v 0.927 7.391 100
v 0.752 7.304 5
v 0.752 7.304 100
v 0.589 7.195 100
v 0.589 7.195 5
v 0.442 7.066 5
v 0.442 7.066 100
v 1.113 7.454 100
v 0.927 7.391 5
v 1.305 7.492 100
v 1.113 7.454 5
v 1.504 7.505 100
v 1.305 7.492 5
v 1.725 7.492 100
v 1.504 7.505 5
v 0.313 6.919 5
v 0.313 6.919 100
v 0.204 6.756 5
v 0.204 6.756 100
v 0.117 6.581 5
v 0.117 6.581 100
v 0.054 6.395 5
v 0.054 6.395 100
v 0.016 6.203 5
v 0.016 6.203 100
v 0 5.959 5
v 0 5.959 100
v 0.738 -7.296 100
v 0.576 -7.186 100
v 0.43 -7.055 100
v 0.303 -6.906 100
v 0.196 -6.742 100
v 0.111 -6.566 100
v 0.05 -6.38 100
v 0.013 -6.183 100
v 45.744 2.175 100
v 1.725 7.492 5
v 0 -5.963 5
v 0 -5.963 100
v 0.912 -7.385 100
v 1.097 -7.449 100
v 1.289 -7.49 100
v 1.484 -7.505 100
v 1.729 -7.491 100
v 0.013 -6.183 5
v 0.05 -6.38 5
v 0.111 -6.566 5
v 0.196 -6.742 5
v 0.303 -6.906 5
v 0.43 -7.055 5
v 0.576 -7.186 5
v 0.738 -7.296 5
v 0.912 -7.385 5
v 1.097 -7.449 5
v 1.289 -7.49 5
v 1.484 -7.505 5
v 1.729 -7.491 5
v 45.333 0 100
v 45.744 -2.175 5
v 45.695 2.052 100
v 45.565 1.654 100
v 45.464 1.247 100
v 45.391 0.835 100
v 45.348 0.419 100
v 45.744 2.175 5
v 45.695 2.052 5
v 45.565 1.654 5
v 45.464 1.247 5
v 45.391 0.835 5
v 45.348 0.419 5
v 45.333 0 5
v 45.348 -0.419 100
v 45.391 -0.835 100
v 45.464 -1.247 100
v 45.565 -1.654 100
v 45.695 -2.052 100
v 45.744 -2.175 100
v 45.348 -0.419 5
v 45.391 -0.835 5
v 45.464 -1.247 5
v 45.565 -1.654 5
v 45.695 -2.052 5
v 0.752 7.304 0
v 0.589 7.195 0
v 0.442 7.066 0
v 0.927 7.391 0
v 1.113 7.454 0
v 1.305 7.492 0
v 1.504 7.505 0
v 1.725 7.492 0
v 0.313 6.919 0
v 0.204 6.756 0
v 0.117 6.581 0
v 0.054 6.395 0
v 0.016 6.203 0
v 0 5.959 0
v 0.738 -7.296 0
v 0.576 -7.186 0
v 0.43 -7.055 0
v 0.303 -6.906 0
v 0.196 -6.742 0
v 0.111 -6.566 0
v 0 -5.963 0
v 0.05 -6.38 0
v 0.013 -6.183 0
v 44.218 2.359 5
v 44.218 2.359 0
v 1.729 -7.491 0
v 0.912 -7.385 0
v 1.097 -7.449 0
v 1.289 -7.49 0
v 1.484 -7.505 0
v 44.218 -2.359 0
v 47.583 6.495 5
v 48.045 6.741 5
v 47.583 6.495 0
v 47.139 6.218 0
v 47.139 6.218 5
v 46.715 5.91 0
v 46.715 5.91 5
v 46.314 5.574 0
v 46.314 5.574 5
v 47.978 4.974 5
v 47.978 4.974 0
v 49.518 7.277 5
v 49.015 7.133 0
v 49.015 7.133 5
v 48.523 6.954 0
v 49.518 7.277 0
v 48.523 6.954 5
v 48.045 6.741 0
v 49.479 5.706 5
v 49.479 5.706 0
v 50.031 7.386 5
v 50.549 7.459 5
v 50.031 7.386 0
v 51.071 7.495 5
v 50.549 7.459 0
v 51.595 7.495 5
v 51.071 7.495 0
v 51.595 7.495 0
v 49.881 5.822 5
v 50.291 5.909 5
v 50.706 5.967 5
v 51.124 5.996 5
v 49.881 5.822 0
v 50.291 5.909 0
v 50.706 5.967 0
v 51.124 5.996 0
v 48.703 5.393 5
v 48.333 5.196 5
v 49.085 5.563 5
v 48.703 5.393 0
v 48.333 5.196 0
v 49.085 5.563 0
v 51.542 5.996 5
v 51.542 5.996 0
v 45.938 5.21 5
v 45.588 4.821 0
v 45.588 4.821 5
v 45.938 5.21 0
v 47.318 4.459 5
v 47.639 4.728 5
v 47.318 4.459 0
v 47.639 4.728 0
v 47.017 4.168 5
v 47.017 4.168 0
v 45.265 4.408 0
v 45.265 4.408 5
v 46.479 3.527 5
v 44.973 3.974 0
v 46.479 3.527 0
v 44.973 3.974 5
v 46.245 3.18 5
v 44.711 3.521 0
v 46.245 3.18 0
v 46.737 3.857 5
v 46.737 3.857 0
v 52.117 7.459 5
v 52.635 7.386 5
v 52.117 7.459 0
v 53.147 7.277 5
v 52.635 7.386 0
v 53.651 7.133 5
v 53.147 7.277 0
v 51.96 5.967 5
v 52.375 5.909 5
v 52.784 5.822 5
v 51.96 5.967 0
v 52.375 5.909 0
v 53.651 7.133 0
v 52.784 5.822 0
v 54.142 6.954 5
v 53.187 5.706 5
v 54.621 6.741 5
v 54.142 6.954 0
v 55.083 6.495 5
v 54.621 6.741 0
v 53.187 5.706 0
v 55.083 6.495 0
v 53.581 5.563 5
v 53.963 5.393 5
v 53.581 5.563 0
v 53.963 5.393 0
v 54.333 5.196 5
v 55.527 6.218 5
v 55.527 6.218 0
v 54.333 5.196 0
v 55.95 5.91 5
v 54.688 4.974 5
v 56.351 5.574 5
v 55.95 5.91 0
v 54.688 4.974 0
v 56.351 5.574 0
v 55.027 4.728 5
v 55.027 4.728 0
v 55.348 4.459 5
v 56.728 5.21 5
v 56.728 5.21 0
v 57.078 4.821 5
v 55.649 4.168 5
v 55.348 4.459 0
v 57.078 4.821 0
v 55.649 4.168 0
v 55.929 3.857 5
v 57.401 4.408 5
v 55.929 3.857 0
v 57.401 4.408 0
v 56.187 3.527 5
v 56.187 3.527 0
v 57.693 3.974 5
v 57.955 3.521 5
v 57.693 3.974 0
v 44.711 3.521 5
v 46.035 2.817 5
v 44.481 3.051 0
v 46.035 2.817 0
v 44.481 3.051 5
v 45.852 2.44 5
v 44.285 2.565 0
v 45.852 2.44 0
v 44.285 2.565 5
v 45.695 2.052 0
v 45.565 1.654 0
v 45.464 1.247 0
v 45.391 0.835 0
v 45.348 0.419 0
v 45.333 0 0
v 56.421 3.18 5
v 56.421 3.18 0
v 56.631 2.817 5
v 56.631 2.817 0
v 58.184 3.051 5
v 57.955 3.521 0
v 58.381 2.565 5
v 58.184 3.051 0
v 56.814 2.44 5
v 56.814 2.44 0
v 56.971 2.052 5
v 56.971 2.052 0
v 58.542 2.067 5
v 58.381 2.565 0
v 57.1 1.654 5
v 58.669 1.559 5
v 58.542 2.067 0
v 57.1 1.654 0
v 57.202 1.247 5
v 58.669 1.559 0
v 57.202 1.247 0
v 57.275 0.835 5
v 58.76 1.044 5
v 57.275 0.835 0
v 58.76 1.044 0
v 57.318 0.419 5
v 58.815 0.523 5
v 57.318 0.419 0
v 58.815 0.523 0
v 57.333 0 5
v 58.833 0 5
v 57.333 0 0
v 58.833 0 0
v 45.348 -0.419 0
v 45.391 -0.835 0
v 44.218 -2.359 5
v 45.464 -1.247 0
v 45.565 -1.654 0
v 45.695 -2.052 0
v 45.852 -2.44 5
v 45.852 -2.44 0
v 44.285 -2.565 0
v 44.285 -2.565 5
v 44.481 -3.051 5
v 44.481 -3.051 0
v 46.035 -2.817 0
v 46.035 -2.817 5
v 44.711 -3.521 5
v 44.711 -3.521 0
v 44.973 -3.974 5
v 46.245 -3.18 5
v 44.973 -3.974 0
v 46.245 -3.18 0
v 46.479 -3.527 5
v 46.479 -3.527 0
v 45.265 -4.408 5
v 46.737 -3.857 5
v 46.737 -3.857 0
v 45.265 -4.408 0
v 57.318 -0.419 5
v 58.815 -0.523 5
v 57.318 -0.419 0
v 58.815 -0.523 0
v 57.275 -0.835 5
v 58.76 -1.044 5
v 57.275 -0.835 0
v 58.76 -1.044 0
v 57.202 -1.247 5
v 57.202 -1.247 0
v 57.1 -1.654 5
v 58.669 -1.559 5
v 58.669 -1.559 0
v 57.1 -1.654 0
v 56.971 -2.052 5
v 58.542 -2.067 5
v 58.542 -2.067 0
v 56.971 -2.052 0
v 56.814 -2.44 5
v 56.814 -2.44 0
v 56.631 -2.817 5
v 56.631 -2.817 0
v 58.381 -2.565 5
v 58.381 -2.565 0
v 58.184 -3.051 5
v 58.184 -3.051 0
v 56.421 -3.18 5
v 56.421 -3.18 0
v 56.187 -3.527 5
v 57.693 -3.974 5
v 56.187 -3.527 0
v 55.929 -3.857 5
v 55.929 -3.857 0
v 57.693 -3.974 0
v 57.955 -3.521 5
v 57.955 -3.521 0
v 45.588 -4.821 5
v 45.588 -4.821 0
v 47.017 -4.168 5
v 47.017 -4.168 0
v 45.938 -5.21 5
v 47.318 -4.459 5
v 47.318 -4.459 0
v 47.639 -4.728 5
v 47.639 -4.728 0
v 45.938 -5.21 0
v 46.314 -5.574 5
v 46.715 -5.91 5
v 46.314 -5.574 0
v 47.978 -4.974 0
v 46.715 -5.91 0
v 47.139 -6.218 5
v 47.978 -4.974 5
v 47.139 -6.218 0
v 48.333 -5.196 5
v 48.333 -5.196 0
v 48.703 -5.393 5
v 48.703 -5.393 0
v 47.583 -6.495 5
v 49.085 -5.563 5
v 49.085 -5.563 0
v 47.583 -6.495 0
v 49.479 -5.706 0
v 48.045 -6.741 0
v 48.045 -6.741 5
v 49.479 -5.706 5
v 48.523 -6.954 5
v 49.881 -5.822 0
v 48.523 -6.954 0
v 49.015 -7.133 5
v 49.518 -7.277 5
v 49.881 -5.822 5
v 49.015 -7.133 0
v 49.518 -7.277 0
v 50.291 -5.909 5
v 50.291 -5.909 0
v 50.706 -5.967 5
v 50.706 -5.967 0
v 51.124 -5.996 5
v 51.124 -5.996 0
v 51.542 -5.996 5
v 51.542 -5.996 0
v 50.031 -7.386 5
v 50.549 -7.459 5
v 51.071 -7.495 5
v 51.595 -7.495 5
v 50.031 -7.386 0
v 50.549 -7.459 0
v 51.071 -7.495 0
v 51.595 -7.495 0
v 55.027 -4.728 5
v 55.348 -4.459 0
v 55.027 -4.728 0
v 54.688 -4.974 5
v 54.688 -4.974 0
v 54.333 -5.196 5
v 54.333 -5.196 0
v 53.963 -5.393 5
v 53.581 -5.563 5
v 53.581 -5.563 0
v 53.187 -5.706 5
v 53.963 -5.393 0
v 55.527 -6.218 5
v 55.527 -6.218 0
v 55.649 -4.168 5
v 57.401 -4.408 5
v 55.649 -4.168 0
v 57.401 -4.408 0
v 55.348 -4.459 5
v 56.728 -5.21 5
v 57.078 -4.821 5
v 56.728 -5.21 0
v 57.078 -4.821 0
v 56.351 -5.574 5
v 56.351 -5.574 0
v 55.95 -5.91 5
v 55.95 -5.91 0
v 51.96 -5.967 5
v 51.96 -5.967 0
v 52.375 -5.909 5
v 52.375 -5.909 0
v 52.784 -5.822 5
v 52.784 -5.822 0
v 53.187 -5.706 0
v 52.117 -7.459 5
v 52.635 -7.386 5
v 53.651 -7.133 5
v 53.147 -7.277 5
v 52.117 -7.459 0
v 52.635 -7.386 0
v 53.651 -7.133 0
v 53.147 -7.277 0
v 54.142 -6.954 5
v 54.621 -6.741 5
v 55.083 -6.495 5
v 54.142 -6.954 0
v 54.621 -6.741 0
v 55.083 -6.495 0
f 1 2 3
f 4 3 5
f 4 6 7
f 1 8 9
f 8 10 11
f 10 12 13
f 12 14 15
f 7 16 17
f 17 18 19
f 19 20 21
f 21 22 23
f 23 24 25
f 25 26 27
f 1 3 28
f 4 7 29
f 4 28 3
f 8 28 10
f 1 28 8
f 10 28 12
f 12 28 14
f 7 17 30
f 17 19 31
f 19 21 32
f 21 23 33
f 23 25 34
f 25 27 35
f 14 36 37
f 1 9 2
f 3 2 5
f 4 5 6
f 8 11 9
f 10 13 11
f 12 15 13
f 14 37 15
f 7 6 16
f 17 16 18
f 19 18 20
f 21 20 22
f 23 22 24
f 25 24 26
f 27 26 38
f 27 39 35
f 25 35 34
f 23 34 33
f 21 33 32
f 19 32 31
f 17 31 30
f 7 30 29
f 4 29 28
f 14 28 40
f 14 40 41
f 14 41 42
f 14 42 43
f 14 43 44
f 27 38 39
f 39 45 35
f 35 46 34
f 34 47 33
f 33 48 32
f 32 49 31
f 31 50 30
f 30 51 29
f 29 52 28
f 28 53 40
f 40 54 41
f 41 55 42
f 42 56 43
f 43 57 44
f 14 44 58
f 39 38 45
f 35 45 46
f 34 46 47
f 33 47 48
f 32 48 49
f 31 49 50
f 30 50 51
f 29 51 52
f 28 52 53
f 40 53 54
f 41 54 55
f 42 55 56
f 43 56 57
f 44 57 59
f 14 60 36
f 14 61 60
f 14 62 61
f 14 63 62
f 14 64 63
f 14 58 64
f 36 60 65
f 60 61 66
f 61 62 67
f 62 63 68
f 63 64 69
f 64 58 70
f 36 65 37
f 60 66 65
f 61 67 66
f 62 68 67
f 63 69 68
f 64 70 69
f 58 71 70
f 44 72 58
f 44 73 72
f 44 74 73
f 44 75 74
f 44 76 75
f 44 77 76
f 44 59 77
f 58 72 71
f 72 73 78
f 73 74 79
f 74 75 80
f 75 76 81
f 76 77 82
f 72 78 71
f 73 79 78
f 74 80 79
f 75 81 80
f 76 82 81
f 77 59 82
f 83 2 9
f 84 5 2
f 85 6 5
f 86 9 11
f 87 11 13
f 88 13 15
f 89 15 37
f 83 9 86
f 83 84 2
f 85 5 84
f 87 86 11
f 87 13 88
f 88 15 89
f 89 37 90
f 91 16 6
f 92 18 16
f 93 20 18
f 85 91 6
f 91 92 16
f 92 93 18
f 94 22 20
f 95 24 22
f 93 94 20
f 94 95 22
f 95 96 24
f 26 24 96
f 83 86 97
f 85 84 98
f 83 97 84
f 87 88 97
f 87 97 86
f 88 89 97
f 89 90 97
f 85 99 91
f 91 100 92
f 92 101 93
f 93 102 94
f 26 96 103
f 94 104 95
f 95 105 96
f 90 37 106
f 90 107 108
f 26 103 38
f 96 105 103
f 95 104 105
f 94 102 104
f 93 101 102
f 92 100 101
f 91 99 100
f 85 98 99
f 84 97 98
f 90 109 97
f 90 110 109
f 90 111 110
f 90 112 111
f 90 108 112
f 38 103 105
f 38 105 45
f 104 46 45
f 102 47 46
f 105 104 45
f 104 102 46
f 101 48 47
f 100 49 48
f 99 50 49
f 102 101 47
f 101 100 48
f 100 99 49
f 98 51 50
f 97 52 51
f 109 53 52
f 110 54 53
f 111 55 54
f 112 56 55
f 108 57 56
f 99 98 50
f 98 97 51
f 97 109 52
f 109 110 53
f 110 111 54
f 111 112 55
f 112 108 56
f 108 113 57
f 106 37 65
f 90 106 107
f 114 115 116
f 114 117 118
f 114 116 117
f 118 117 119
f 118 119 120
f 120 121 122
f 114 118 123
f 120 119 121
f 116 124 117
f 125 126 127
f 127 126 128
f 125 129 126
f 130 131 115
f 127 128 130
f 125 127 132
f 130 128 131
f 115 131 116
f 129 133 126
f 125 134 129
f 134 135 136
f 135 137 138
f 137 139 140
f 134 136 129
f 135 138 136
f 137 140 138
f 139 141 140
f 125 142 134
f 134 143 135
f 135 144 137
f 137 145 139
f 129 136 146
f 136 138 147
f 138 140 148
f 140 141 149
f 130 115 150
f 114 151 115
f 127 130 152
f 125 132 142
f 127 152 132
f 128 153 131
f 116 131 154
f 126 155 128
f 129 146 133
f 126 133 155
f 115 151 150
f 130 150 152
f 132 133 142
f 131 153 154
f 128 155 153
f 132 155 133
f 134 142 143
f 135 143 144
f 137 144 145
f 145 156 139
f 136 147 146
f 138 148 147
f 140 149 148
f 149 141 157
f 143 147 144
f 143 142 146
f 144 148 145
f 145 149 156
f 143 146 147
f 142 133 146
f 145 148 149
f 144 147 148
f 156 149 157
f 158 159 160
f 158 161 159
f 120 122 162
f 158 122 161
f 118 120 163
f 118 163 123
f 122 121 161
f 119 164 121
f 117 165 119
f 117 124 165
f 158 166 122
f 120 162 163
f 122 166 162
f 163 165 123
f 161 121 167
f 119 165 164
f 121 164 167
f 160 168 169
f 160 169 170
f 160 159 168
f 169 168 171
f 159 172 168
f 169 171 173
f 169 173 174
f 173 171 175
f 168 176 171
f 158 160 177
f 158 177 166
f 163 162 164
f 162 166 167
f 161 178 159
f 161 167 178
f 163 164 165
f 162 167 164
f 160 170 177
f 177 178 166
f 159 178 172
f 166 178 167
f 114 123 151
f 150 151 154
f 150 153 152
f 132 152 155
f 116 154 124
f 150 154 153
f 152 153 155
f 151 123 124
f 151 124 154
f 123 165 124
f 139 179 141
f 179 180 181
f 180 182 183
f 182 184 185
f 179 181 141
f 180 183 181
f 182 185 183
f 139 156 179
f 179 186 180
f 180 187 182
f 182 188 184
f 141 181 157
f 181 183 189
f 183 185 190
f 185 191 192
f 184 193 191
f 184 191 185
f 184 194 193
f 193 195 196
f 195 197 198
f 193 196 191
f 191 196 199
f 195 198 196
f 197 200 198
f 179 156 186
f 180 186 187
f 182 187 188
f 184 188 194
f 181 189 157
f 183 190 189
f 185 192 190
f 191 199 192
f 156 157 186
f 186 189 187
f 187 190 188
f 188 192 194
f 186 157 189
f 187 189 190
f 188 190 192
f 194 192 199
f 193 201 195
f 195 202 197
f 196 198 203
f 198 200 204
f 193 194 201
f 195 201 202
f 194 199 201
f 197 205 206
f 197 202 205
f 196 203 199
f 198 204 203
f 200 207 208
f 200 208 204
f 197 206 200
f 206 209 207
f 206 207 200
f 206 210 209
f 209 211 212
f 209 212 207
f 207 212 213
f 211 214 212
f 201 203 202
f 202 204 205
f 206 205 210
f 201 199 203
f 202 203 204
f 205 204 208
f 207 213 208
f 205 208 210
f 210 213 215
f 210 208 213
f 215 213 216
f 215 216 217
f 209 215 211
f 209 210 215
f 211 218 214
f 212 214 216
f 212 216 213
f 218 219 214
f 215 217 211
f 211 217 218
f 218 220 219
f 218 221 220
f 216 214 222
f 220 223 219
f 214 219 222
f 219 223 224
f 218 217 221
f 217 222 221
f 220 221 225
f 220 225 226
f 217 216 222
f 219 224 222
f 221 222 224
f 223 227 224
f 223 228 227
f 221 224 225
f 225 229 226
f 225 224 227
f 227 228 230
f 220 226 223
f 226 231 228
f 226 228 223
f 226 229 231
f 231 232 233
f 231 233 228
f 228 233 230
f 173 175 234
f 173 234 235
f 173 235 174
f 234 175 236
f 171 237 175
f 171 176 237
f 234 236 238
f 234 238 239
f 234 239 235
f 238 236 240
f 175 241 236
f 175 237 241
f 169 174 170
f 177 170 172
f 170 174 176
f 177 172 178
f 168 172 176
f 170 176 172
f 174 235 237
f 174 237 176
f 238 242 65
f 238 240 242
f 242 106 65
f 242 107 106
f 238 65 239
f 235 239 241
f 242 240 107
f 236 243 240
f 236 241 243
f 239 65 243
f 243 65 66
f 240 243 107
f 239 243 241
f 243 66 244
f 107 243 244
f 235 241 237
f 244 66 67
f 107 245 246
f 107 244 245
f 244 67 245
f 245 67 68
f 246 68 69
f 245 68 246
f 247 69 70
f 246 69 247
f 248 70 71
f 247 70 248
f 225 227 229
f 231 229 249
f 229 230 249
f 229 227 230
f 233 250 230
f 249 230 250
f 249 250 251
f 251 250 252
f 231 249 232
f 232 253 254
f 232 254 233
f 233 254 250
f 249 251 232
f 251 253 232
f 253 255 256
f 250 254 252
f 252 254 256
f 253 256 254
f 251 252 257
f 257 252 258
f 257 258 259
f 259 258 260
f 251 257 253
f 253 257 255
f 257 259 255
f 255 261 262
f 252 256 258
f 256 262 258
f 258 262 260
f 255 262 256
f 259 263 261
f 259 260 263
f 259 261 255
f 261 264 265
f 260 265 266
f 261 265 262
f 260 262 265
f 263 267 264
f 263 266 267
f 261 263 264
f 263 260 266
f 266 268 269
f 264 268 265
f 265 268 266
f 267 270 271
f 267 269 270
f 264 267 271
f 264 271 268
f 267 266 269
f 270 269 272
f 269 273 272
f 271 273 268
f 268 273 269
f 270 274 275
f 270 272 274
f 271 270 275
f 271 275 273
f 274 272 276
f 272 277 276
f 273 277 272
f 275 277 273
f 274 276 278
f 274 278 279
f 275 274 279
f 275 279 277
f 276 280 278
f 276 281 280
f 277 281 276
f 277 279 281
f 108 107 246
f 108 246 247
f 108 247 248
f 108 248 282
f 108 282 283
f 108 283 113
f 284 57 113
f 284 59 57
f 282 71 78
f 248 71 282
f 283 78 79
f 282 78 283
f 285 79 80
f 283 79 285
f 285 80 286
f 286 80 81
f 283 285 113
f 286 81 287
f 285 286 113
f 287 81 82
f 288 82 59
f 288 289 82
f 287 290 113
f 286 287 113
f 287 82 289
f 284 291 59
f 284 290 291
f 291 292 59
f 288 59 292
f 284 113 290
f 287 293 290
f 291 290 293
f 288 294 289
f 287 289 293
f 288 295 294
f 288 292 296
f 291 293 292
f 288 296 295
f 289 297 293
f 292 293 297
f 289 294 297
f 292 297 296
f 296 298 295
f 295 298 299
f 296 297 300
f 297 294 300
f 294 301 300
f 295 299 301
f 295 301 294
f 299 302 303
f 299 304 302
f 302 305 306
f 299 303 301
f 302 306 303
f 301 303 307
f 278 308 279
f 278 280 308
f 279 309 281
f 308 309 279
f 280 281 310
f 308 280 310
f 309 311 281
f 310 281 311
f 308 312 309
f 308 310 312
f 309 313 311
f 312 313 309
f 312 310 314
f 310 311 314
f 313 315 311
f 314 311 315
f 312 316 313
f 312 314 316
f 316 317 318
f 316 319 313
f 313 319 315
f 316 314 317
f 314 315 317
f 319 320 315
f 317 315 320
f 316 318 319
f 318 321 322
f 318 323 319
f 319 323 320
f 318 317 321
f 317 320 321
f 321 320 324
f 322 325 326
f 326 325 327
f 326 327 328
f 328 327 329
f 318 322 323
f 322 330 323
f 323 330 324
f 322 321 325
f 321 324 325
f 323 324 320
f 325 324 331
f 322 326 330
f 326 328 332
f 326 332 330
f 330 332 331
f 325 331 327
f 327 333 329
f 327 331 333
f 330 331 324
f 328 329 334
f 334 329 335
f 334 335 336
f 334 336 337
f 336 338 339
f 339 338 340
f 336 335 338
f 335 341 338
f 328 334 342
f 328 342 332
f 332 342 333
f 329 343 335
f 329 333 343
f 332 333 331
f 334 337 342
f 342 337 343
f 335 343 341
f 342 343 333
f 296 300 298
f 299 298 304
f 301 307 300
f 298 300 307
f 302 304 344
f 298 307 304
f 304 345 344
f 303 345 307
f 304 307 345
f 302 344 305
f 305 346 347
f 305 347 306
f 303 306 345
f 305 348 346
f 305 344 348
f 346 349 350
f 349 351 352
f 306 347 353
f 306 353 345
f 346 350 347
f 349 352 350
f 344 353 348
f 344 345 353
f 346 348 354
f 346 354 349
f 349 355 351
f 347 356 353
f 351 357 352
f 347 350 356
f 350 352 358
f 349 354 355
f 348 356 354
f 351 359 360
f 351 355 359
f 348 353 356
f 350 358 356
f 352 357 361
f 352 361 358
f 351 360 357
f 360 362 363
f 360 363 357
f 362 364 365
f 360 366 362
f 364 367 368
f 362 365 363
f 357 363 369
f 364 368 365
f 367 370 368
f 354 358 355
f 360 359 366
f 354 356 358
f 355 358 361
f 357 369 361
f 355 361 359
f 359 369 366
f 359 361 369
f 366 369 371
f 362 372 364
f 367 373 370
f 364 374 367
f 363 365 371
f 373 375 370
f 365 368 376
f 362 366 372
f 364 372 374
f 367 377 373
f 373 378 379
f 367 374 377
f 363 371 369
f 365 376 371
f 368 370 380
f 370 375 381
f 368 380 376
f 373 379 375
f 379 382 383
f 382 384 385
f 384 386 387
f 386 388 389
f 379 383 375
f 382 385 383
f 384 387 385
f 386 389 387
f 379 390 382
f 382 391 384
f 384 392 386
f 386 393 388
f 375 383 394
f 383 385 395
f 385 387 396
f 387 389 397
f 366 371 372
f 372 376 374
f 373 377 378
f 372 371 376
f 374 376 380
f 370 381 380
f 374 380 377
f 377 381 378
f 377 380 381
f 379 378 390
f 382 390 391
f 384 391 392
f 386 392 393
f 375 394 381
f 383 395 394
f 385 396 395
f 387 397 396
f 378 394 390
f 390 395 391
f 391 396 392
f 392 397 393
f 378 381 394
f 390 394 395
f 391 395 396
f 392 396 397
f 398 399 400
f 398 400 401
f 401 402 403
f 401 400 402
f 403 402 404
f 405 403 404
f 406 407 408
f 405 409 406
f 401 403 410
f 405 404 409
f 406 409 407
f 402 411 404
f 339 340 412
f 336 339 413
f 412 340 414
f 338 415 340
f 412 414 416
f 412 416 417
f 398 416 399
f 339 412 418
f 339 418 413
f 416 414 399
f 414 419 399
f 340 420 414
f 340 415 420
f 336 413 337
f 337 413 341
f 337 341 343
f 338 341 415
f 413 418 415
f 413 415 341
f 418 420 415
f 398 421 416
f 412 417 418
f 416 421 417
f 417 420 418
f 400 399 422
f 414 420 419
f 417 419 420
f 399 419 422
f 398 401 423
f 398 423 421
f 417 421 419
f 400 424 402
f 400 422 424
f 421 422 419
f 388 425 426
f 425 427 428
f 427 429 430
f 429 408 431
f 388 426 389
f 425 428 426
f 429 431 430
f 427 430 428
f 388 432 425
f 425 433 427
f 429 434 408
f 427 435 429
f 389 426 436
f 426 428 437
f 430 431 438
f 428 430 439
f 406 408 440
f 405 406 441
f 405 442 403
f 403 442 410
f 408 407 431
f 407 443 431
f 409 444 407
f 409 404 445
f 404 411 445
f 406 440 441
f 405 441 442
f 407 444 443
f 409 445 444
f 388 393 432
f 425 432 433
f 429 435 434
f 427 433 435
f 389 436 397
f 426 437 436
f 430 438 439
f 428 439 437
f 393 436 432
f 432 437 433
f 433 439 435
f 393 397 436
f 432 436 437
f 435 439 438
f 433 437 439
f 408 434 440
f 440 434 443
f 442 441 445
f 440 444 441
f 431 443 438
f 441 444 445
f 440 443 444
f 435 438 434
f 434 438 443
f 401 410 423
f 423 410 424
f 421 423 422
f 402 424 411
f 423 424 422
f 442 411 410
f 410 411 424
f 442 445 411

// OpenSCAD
// Cat gap wedge — holds the laundry/litter room door open a cat's width.
//
// This file is the WEDGE BODY ONLY. The hook is the ring, and it is part of
// this file; nothing else is needed to hang it.
//
// HOW IT INSTALLS. The ring drops over the TOP HINGE PIN, on the inside of the
// jamb, and the wedge hangs down from it into the gap between the door's hinge
// stile and the jamb. The door closes onto the taper and cannot go past, which
// leaves the latch edge cracked open for the cats. Ziad, 2026-09-11.
//
// SO THE RING END IS THE BACK, as you install it: the ring is at the hinge and
// the far face points out into the opening. It does not bear on anything; it
// is simply the far end.
//
// THE HINGE, measured by Ziad 2026-09-12. The barrel is about 12 mm across and
// stands outside the door face; the stack is 90 mm tall. On top of it sits a
// two-sided hinge-pin door stop 7 mm tall, then a 1 mm rubber grommet and a
// 1 mm pin head. The ring loops those last 2 mm and rests on the door stop, so
// its top 3 mm have nothing but air inside. Below the ring the channel runs
// down beside the door stop and then the barrel.
//
// THE FORM. A truncated wedge standing on end: 100 mm tall, a 15.4 mm flat
// face at the far end tapering to a 3 mm nose ON the pin, and a 15 mm bored
// ring around the pin for the top 5 mm.
//
//   depth        51.333 mm   far face to the pin
//   taper angle  13.77 deg   2 * atan(6.2 / 51.333)
//   overall      58.833 mm   depth + knob_r
//
// WHAT SETS THE GAP. The door binds where the wedge is widest along the door's
// edge — the door's inside corner, about 43 mm from the pin (a 12 mm barrel
// outside the face, a 35 mm door) — and only by however much the wedge is
// wider there than the slot already is with the door closed:
//
//   crack  ~  W * (width at the corner - closed slot) / 43
//
// with W the door's width. The slot has not been measured; it is FITTED. The
// first coupon, an 11 mm face on a point nose, stopped a 30 in door at just
// over 3 in, which puts the slot at about 4.8 mm. On that fit 1 mm more on
// the far face is about 0.6 in more at the latch, and 15.4 predicts 6 in.
// Treat the prediction as a first cut and the 0.6 in/mm as the correction,
// and if it lands far off, measure the slot instead of fitting it again.
//
// THE FIRST TWO GUESSES WERE WRONG THE SAME WAY. An 18 mm face on a 5 mm nose
// jammed on the nose. The fix, "call it 11 mm" on a point nose so that t/r
// was constant along the facets, assumed the closed slot was zero and that
// the door touched the wedge all the way in to the pin. Neither is true: the
// slot is ~5 mm and the door's edge starts ~8 mm out from the pin, so the
// point nose never touched anything, the far corner did all the work, and a
// predicted 6.39 in came out as 3.
//
// THE NOSE IS 3 mm FOR THE RING JOINT, not for the door. In TPU the point
// nose met the ring across 1.8 mm, which is a live hinge. 3 mm at the pin is
// 4.8 mm where the wedge meets the ring's outside, and at 8 mm out — the
// door's face corner — the wedge is 4.9 mm against a slot of 4.8 plus whatever
// the door has opened, so it clears there and binds at the far corner as
// intended. Do not raise it past 4 without measuring the slot; that is the
// 18 mm mistake again.
//
// THE BORE IS THE MOUNT, and it is vertical in use. Modelled ring-up, the bore
// runs down the part's height, so hanging on the door it is a vertical hole
// that drops straight over the pin head from above and rests on the door stop.
//
// THE RING EXISTS ONLY IN THE TOP 5 mm; BELOW IT, THE BORE CARRIES ON. Above
// z = 95 the 15 mm knob is added and bored 12. Below, the knob is simply gone
// — not subtracted, absent — and the 12 mm bore continues down as a cut, so
// the channel wall is the very same cylinder as the inside of the ring and
// runs flush with it. Ziad: "delete the ring but leave the overlap."
//
//   channel floor  45.333 mm from the far face
//   channel mouth  45.741 mm, where the arc meets each facet
//   mouth tips     2.175 mm off the axis, so a 4.35 mm nose at the mouth
//
// The channel is drawn at the barrel's 12 mm. The coupon went on, so it
// clears, but it is not a measured clearance.
//
// EVERY VERTICAL EDGE IS ROUNDED at edge_r = 1.5 mm. With a 3 mm nose the
// opening rounds its two corners into nearly a full round and pulls nothing
// back. The point nose it replaced lost 14 mm to the same opening and was
// SEVERED from the ring, which genus did not catch: a wedge is genus 0 and a
// ring is genus 1, so the sum read 1 either way. Count connected components
// in the mesh after any change to the nose; that is the check that caught it.
//
// THE BORE IS DRAWN NOMINAL. This machine loses 0.55-0.65 mm on a small bore
// by measurement, so put that back with bore_comp before trusting the fit on
// a real pin.
//
// ⚠️ THE RING WALL IS 1.5 mm, which is 3.57 passes of a 0.42 line and off the
// wall ladder. 1.26 (3 passes) and 1.68 (4) are the neighbours: knob_d 15.36
// holds the 12 mm bore, bore_d 11.64 holds the 15 mm knob. Ziad's call, so it
// builds 12-in-15 as asked.
//
// ORIENTATION. Modelled ring-up, which is how it hangs. It is BUILT ring-down
// — flip = true rotates it 180 about X before output — and that is how to
// print it: the channel is a vertical slot, the bore a vertical hole, and the
// ring's flat underside sits on the plate instead of bridging open air at
// z = 95. Going up from the ring the section only loses material, which is a
// ledge, not an overhang. It is a 100 mm tower on a 58.8 x 15.4 footprint, so
// run a brim.

/* [Output] */

// "coupon" is the bottom coupon_h of the printed orientation — the ring and
// the start of the channel — for checking the fit, the bore, and the door
// angle without printing 100 mm. Build it with --name cat-gap-wedge-coupon.
show = "part";   // [part, coupon]
// Print the part ring-down. The ring is modelled at the top because that is
// where it belongs on the door; it is printed at the bottom because that is
// the only way the ring's underside is not a bridge.
flip = true;
// Height of the coupon, measured from the bottom of the printed orientation.
coupon_h = 20.0;

$fa = 4;   // organic faceting per the 0.4-nozzle rule; no global high $fn
$fs = 0.4;
eps = 0.01;

/* [Wedge] */

// Height standing on end (mm). The dimension along the door's edge.
wedge_height = 100.0;
// Distance from the far face to the ring's axis, which is the pin (mm).
// 51.3329 is the original 31.3329 plus the 20 Ziad asked for on 2026-09-11.
wedge_depth = 51.3329;
// Thickness of the far face, the end away from the hinge (mm). THIS is the
// lever for the door angle: about 0.6 in at the latch per mm, see WHAT SETS
// THE GAP. 11 gave 3 in; 15.4 is the 6 in prediction.
back_thick = 15.4;
// Thickness of the nose, on the pin (mm). Set for the ring joint, bounded by
// the closed slot — see THE NOSE IS 3 mm. 0 makes it a point.
front_thick = 3.0;
// Radius on every vertical edge (mm). Rounds convex and concave corners alike.
// 0 leaves them all sharp.
edge_r = 1.5;

/* [Door — measured and fitted] */

// Width of the door (in). Only used for the predicted crack.
door_width_in = 30;
// Distance from the pin to the door's inside corner, where it binds (mm).
// 12 mm barrel outside the face plus a 1-3/8 in door. Estimated, not measured.
door_corner = 43.0;
// Gap between the door's hinge edge and the jamb with the door closed (mm).
// FITTED from the 3 in coupon result, not measured.
slot_closed = 4.8;

/* [Knob] */

// Diameter of the cylinder running down the front edge (mm).
knob_d = 15.0;
// Position of the knob's axis, measured forward from the nose (mm). 0 centres
// it on the nose.
knob_offset = 0.0;
// Diameter of the bore down the knob's axis (mm). 0 leaves it solid.
bore_d = 12.0;
// Added to bore_d to cover this machine's bore shrinkage (mm). Left at 0 the
// hole is drawn at its nominal size.
bore_comp = 0.0;
// Height of cylinder kept at the very top as a ring (mm). The rest of it is
// subtracted from the wedge and becomes the channel.
ring_h = 5.0;

/* [Derived — do not edit] */

half_back = back_thick / 2;
half_front = front_thick / 2;
knob_r = knob_d / 2;
bore_r = (bore_d + bore_comp) / 2;
knob_x = wedge_depth + knob_offset;
facet_len = sqrt(wedge_depth * wedge_depth + pow(half_back - half_front, 2));
taper_angle = 2 * atan((half_back - half_front) / wedge_depth);
// Half-width of the wedge at s mm from the pin, towards the far face.
function half_width(s) = half_front + (half_back - half_front) * s / wedge_depth;
// Where the bore's arc meets each facet, as a distance from the pin: solve
// s^2 + half_width(s)^2 = bore_r^2 for s.
slope = (half_back - half_front) / wedge_depth;
mouth_s = (-2 * half_front * slope
           + sqrt(pow(2 * half_front * slope, 2)
                  - 4 * (1 + slope * slope) * (half_front * half_front - bore_r * bore_r)))
          / (2 * (1 + slope * slope));
// The door stops where the wedge outgrows the slot by the most per mm of
// reach. That is the far corner unless the nose is fatter than the slot.
stop_rad = max([for (s = [8 : 1 : door_corner]) (2 * half_width(s) - slot_closed) / s]);

// Round every corner of a 2D profile by rr without moving the flats: open by
// rr (erode, dilate — rounds the convex corners), then close by rr (dilate,
// erode — rounds the concave ones). The two dilations merge into one, which is
// why the middle offset is 2 * rr. Arcs already larger than rr come through
// untouched, so the channel and the bore are unaffected.
module round_all(rr) {
  if (rr > 0) offset(r = -rr) offset(r = 2 * rr) offset(r = -rr) children();
  else children();
}

module wedge_trapezoid() {
  polygon([
    [0, -half_back],                // far face, right side
    [wedge_depth, -half_front],     // the nose, on the pin
    [wedge_depth, half_front],
    [0, half_back],                 // far face, left side
  ]);
}

module wedge_rounded() {
  round_all(edge_r) wedge_trapezoid();
}

// Below the ring: the wedge with the channel scooped out of its nose. The cut
// is the BORE, not the knob — below the top course the ring itself is simply
// not there, and what continues down is the hole through it. So the channel
// wall is the same cylinder as the inside of the ring and runs flush with it,
// rather than standing knob_r - bore_r = 1.5 mm proud of it.
module lower_profile() {
  difference() {
    wedge_rounded();
    translate([knob_x, 0]) circle(r = bore_r);
  }
}

// The ring course. Rounded BEFORE the bore is cut, because the ring wall is
// only 1.5 mm and an erode of edge_r would delete it outright.
module upper_profile() {
  difference() {
    union() {
      wedge_rounded();
      translate([knob_x, 0]) circle(r = knob_r);
    }
    translate([knob_x, 0]) circle(r = bore_r);
  }
}

// Two constant sections stacked, rather than one extrude cut by a cylinder.
// Each course is a plain 2D profile, so the rounding is a 2D offset and the
// knob's r = 7.5 surface is never both added and subtracted over the same z.
module cat_gap_wedge() {
  linear_extrude(height = wedge_height - ring_h, convexity = 6)
    lower_profile();
  translate([0, 0, wedge_height - ring_h])
    linear_extrude(height = ring_h, convexity = 6)
      upper_profile();
}

// Printed orientation. The flip is a rotate, not a mirror — the part is
// symmetric about y = 0, so nothing is handed either way.
module cat_gap_wedge_oriented() {
  if (flip) translate([0, 0, wedge_height]) rotate([180, 0, 0]) cat_gap_wedge();
  else cat_gap_wedge();
}

if (show == "coupon") {
  intersection() {
    cat_gap_wedge_oriented();
    translate([-80, -80, 0]) cube([300, 160, coupon_h]);
  }
} else {
  cat_gap_wedge_oriented();
}

echo(str("depth, far face to the pin = ", wedge_depth, " mm"));
echo(str("overall depth = ", wedge_depth + knob_offset + knob_r, " mm"));
echo(str("taper angle = ", taper_angle, " deg"));
echo(str("width at the door's corner (", door_corner, " mm) = ", 2 * half_width(door_corner), " mm"));
echo(str("predicted crack on a ", door_width_in, " in door = ", door_width_in * stop_rad, " in"));
echo(str("  ... and per extra mm on the far face = ", door_width_in * (door_corner / wedge_depth) / door_corner, " in"));
echo(str("neck where the wedge meets the ring's outside = ", 2 * half_width(knob_r), " mm"));
echo(str("channel floor = ", knob_x - bore_r, " mm from the far face"));
echo(str("channel mouth = ", knob_x - mouth_s, " mm from the far face, tips ", half_width(mouth_s), " mm off axis"));
echo(str("wall around the bore = ", knob_r - bore_r, " mm"));
echo(str("ring from z = ", wedge_height - ring_h, " to ", wedge_height, " mm"));
